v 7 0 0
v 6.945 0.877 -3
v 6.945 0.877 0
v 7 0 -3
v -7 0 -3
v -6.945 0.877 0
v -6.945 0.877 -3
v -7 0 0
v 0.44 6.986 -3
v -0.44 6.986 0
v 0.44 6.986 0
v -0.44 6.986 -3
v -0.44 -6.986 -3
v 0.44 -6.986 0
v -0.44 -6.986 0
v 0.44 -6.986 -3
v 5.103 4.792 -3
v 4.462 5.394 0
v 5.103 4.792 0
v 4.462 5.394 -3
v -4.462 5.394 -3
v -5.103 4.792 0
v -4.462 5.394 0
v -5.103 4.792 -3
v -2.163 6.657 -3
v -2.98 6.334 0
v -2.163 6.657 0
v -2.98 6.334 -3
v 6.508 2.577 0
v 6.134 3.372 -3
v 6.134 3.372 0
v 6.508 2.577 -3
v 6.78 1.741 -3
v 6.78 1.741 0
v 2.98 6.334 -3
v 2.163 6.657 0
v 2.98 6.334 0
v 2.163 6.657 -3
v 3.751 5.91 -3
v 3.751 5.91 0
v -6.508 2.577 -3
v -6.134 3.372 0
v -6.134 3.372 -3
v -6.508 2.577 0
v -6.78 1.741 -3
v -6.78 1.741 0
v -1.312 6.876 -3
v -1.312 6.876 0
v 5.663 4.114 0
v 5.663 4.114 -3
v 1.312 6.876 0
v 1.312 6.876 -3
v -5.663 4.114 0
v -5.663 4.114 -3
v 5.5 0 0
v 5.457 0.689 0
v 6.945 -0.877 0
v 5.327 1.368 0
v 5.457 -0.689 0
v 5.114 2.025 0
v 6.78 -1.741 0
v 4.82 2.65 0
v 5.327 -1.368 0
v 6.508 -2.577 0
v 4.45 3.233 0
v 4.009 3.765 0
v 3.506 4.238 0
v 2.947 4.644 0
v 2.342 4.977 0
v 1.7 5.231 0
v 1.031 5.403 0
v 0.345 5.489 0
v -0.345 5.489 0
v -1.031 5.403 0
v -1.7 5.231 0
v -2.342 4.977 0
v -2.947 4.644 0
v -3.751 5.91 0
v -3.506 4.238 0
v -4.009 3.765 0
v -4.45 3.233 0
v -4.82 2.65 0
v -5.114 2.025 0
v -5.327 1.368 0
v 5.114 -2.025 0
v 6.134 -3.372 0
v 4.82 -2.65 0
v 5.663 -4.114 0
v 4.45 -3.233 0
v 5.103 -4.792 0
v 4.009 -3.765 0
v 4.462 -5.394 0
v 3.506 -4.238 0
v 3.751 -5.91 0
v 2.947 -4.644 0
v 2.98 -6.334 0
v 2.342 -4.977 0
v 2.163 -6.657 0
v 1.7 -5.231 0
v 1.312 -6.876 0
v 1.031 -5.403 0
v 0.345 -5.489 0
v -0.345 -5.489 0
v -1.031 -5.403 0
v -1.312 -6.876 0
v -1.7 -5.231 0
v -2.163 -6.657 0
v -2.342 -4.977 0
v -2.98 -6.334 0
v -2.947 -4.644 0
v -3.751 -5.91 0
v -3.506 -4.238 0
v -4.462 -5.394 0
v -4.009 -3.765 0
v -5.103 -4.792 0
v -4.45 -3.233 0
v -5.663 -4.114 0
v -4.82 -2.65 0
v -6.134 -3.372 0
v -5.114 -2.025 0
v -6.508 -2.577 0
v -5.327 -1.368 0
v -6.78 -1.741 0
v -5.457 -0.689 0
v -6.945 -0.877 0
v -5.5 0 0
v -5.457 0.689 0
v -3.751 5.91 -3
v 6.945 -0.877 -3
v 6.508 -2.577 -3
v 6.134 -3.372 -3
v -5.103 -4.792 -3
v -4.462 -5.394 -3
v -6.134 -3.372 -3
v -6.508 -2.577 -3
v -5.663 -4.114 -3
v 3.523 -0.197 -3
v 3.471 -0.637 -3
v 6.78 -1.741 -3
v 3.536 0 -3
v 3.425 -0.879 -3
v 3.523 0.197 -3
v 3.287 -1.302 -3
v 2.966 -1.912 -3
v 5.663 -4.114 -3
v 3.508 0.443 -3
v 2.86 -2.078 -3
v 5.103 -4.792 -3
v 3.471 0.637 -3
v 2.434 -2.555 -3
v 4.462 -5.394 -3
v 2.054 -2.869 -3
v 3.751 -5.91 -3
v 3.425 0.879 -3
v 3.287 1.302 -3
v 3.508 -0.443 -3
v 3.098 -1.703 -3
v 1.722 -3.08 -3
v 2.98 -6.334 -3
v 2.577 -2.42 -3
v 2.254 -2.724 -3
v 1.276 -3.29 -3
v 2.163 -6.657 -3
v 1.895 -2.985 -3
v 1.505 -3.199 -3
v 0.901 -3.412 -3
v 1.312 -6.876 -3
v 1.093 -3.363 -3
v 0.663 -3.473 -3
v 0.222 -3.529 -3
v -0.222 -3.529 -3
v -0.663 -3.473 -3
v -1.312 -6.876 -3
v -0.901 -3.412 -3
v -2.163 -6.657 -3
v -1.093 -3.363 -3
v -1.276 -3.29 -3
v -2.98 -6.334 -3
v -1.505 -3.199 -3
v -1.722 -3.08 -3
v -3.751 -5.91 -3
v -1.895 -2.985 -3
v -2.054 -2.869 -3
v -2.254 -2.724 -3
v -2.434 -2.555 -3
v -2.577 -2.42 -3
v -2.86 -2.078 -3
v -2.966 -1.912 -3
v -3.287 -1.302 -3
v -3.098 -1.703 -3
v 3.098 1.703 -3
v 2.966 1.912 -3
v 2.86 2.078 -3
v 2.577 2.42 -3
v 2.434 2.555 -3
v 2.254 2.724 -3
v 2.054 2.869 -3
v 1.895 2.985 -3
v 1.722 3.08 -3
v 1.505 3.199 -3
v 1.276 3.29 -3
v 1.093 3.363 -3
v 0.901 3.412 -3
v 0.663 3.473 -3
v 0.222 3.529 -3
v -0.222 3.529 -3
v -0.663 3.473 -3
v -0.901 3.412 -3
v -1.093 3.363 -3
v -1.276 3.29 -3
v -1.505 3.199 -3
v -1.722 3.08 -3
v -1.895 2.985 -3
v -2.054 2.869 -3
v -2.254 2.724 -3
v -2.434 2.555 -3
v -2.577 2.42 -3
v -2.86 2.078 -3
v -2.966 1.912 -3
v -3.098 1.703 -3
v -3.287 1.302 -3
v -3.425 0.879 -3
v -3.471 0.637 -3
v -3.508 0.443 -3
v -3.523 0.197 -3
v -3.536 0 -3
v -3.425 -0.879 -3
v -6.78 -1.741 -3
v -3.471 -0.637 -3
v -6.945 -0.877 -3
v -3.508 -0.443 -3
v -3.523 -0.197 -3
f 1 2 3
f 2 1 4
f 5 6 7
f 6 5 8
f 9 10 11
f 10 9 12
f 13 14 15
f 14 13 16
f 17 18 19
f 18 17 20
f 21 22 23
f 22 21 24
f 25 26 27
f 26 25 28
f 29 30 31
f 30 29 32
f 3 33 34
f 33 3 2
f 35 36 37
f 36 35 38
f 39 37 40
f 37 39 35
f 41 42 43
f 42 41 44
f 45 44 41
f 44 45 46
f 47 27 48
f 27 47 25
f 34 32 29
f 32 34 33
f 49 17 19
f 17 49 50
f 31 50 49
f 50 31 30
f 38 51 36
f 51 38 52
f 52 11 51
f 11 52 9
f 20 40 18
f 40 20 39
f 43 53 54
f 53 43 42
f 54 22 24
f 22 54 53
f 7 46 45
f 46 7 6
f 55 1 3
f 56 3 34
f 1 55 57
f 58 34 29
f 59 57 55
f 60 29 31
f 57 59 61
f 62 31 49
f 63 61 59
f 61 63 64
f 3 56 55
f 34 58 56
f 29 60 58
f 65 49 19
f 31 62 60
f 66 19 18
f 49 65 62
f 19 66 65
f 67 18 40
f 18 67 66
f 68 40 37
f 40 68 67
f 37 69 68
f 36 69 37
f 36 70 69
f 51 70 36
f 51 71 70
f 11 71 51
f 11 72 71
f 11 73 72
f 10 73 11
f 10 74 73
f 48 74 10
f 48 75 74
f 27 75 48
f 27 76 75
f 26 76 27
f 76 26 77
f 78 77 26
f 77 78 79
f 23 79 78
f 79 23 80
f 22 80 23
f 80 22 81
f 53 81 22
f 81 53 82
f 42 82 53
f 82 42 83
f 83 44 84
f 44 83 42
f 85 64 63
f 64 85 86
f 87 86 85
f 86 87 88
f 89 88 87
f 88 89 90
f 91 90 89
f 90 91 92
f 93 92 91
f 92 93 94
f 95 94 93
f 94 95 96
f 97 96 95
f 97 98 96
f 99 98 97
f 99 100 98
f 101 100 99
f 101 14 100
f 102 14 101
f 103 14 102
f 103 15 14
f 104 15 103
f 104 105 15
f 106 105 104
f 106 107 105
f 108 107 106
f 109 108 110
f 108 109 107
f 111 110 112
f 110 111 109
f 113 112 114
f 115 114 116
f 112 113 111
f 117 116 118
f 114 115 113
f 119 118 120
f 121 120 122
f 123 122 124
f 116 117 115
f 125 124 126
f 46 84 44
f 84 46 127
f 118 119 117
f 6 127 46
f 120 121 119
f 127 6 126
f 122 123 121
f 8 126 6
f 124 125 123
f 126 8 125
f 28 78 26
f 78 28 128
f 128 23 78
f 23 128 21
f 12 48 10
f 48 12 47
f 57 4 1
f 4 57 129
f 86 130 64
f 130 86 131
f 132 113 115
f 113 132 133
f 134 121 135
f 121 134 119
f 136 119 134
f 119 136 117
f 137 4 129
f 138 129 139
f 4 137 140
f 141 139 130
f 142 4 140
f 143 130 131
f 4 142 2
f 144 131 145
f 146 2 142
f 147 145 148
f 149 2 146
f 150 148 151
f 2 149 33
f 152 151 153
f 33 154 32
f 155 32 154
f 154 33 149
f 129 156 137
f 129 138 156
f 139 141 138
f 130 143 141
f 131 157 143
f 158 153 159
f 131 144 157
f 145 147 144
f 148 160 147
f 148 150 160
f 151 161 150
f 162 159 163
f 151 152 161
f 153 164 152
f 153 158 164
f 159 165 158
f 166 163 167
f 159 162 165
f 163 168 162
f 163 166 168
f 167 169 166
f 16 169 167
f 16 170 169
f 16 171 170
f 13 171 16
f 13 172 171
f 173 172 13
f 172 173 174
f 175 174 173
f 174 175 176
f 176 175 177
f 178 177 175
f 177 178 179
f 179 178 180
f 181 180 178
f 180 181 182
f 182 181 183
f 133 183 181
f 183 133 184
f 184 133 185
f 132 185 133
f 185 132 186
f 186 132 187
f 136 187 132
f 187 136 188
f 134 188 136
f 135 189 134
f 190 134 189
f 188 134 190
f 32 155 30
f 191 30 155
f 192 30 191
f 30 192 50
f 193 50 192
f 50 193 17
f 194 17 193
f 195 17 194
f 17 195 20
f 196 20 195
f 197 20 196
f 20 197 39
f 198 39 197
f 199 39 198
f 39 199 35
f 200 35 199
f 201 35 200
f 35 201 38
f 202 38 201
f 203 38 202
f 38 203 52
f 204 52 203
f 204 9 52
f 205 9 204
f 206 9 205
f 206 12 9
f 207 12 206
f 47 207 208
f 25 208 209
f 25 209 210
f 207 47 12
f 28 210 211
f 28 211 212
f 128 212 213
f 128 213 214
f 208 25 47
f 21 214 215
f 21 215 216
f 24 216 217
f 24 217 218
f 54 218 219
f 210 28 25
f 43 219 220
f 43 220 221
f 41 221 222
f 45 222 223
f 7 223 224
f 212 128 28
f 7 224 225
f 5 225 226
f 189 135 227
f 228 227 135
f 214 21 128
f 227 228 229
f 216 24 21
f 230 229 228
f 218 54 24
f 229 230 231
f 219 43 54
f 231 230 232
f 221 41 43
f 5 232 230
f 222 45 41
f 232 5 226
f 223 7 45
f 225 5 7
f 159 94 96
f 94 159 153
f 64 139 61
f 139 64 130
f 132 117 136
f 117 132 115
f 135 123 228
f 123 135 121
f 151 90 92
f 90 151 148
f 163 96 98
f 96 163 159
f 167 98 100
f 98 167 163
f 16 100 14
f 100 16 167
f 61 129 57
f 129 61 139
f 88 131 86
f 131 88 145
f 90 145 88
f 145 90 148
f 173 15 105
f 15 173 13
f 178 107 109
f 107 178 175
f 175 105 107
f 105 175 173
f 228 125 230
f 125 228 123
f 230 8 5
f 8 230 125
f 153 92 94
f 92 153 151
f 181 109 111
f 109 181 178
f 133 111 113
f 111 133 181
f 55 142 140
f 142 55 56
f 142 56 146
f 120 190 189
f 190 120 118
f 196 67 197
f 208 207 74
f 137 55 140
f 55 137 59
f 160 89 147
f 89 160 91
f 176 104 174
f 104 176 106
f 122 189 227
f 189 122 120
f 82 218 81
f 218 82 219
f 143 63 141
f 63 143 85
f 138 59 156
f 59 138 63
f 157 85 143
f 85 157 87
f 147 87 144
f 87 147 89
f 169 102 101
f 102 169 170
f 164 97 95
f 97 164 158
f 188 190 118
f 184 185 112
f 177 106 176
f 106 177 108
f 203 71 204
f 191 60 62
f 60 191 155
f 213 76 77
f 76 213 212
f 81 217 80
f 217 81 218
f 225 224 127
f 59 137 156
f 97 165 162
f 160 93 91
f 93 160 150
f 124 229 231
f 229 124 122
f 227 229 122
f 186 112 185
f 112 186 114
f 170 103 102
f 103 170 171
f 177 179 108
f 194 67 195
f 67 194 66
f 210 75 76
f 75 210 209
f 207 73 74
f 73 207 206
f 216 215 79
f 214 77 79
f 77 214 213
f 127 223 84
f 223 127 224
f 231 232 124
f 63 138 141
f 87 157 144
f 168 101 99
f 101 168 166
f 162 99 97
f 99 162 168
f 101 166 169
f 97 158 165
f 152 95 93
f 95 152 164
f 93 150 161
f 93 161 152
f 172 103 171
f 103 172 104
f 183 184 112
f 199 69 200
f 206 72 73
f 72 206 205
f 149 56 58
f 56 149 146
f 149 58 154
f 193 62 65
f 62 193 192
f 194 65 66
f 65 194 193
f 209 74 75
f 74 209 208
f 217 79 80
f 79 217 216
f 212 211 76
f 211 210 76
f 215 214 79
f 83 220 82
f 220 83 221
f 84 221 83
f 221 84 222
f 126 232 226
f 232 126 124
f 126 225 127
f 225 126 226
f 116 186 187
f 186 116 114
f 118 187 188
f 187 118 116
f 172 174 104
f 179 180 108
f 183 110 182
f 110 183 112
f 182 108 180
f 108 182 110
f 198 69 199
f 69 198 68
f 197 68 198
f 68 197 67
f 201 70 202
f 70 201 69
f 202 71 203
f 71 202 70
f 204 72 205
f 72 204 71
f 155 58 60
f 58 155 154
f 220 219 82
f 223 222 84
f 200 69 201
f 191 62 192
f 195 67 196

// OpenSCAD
$fn = 50;


difference() {
	union() {
		translate(v = [0, 0, -3.0000000000]) {
			cylinder(h = 3, r = 7.0000000000);
		}
		translate(v = [0, 0, -3.0000000000]) {
			cylinder(h = 3, r = 2.8750000000);
		}
	}
	union() {
		translate(v = [0, 0, 0]) {
			rotate(a = [0, 0, 0]) {
				difference() {
					union() {
						translate(v = [0, 0, -3.0000000000]) {
							cylinder(h = 3, r = 2.2500000000);
						}
						translate(v = [0, 0, -4.2000000000]) {
							cylinder(h = 4.2000000000, r1 = 2.7500000000, r2 = 5.5000000000);
						}
						translate(v = [0, 0, -3.0000000000]) {
							cylinder(h = 3, r = 2.7500000000);
						}
						translate(v = [0, 0, -3.0000000000]) {
							cylinder(h = 3, r = 2.2500000000);
						}
					}
					union();
				}
			}
		}
	}
}
